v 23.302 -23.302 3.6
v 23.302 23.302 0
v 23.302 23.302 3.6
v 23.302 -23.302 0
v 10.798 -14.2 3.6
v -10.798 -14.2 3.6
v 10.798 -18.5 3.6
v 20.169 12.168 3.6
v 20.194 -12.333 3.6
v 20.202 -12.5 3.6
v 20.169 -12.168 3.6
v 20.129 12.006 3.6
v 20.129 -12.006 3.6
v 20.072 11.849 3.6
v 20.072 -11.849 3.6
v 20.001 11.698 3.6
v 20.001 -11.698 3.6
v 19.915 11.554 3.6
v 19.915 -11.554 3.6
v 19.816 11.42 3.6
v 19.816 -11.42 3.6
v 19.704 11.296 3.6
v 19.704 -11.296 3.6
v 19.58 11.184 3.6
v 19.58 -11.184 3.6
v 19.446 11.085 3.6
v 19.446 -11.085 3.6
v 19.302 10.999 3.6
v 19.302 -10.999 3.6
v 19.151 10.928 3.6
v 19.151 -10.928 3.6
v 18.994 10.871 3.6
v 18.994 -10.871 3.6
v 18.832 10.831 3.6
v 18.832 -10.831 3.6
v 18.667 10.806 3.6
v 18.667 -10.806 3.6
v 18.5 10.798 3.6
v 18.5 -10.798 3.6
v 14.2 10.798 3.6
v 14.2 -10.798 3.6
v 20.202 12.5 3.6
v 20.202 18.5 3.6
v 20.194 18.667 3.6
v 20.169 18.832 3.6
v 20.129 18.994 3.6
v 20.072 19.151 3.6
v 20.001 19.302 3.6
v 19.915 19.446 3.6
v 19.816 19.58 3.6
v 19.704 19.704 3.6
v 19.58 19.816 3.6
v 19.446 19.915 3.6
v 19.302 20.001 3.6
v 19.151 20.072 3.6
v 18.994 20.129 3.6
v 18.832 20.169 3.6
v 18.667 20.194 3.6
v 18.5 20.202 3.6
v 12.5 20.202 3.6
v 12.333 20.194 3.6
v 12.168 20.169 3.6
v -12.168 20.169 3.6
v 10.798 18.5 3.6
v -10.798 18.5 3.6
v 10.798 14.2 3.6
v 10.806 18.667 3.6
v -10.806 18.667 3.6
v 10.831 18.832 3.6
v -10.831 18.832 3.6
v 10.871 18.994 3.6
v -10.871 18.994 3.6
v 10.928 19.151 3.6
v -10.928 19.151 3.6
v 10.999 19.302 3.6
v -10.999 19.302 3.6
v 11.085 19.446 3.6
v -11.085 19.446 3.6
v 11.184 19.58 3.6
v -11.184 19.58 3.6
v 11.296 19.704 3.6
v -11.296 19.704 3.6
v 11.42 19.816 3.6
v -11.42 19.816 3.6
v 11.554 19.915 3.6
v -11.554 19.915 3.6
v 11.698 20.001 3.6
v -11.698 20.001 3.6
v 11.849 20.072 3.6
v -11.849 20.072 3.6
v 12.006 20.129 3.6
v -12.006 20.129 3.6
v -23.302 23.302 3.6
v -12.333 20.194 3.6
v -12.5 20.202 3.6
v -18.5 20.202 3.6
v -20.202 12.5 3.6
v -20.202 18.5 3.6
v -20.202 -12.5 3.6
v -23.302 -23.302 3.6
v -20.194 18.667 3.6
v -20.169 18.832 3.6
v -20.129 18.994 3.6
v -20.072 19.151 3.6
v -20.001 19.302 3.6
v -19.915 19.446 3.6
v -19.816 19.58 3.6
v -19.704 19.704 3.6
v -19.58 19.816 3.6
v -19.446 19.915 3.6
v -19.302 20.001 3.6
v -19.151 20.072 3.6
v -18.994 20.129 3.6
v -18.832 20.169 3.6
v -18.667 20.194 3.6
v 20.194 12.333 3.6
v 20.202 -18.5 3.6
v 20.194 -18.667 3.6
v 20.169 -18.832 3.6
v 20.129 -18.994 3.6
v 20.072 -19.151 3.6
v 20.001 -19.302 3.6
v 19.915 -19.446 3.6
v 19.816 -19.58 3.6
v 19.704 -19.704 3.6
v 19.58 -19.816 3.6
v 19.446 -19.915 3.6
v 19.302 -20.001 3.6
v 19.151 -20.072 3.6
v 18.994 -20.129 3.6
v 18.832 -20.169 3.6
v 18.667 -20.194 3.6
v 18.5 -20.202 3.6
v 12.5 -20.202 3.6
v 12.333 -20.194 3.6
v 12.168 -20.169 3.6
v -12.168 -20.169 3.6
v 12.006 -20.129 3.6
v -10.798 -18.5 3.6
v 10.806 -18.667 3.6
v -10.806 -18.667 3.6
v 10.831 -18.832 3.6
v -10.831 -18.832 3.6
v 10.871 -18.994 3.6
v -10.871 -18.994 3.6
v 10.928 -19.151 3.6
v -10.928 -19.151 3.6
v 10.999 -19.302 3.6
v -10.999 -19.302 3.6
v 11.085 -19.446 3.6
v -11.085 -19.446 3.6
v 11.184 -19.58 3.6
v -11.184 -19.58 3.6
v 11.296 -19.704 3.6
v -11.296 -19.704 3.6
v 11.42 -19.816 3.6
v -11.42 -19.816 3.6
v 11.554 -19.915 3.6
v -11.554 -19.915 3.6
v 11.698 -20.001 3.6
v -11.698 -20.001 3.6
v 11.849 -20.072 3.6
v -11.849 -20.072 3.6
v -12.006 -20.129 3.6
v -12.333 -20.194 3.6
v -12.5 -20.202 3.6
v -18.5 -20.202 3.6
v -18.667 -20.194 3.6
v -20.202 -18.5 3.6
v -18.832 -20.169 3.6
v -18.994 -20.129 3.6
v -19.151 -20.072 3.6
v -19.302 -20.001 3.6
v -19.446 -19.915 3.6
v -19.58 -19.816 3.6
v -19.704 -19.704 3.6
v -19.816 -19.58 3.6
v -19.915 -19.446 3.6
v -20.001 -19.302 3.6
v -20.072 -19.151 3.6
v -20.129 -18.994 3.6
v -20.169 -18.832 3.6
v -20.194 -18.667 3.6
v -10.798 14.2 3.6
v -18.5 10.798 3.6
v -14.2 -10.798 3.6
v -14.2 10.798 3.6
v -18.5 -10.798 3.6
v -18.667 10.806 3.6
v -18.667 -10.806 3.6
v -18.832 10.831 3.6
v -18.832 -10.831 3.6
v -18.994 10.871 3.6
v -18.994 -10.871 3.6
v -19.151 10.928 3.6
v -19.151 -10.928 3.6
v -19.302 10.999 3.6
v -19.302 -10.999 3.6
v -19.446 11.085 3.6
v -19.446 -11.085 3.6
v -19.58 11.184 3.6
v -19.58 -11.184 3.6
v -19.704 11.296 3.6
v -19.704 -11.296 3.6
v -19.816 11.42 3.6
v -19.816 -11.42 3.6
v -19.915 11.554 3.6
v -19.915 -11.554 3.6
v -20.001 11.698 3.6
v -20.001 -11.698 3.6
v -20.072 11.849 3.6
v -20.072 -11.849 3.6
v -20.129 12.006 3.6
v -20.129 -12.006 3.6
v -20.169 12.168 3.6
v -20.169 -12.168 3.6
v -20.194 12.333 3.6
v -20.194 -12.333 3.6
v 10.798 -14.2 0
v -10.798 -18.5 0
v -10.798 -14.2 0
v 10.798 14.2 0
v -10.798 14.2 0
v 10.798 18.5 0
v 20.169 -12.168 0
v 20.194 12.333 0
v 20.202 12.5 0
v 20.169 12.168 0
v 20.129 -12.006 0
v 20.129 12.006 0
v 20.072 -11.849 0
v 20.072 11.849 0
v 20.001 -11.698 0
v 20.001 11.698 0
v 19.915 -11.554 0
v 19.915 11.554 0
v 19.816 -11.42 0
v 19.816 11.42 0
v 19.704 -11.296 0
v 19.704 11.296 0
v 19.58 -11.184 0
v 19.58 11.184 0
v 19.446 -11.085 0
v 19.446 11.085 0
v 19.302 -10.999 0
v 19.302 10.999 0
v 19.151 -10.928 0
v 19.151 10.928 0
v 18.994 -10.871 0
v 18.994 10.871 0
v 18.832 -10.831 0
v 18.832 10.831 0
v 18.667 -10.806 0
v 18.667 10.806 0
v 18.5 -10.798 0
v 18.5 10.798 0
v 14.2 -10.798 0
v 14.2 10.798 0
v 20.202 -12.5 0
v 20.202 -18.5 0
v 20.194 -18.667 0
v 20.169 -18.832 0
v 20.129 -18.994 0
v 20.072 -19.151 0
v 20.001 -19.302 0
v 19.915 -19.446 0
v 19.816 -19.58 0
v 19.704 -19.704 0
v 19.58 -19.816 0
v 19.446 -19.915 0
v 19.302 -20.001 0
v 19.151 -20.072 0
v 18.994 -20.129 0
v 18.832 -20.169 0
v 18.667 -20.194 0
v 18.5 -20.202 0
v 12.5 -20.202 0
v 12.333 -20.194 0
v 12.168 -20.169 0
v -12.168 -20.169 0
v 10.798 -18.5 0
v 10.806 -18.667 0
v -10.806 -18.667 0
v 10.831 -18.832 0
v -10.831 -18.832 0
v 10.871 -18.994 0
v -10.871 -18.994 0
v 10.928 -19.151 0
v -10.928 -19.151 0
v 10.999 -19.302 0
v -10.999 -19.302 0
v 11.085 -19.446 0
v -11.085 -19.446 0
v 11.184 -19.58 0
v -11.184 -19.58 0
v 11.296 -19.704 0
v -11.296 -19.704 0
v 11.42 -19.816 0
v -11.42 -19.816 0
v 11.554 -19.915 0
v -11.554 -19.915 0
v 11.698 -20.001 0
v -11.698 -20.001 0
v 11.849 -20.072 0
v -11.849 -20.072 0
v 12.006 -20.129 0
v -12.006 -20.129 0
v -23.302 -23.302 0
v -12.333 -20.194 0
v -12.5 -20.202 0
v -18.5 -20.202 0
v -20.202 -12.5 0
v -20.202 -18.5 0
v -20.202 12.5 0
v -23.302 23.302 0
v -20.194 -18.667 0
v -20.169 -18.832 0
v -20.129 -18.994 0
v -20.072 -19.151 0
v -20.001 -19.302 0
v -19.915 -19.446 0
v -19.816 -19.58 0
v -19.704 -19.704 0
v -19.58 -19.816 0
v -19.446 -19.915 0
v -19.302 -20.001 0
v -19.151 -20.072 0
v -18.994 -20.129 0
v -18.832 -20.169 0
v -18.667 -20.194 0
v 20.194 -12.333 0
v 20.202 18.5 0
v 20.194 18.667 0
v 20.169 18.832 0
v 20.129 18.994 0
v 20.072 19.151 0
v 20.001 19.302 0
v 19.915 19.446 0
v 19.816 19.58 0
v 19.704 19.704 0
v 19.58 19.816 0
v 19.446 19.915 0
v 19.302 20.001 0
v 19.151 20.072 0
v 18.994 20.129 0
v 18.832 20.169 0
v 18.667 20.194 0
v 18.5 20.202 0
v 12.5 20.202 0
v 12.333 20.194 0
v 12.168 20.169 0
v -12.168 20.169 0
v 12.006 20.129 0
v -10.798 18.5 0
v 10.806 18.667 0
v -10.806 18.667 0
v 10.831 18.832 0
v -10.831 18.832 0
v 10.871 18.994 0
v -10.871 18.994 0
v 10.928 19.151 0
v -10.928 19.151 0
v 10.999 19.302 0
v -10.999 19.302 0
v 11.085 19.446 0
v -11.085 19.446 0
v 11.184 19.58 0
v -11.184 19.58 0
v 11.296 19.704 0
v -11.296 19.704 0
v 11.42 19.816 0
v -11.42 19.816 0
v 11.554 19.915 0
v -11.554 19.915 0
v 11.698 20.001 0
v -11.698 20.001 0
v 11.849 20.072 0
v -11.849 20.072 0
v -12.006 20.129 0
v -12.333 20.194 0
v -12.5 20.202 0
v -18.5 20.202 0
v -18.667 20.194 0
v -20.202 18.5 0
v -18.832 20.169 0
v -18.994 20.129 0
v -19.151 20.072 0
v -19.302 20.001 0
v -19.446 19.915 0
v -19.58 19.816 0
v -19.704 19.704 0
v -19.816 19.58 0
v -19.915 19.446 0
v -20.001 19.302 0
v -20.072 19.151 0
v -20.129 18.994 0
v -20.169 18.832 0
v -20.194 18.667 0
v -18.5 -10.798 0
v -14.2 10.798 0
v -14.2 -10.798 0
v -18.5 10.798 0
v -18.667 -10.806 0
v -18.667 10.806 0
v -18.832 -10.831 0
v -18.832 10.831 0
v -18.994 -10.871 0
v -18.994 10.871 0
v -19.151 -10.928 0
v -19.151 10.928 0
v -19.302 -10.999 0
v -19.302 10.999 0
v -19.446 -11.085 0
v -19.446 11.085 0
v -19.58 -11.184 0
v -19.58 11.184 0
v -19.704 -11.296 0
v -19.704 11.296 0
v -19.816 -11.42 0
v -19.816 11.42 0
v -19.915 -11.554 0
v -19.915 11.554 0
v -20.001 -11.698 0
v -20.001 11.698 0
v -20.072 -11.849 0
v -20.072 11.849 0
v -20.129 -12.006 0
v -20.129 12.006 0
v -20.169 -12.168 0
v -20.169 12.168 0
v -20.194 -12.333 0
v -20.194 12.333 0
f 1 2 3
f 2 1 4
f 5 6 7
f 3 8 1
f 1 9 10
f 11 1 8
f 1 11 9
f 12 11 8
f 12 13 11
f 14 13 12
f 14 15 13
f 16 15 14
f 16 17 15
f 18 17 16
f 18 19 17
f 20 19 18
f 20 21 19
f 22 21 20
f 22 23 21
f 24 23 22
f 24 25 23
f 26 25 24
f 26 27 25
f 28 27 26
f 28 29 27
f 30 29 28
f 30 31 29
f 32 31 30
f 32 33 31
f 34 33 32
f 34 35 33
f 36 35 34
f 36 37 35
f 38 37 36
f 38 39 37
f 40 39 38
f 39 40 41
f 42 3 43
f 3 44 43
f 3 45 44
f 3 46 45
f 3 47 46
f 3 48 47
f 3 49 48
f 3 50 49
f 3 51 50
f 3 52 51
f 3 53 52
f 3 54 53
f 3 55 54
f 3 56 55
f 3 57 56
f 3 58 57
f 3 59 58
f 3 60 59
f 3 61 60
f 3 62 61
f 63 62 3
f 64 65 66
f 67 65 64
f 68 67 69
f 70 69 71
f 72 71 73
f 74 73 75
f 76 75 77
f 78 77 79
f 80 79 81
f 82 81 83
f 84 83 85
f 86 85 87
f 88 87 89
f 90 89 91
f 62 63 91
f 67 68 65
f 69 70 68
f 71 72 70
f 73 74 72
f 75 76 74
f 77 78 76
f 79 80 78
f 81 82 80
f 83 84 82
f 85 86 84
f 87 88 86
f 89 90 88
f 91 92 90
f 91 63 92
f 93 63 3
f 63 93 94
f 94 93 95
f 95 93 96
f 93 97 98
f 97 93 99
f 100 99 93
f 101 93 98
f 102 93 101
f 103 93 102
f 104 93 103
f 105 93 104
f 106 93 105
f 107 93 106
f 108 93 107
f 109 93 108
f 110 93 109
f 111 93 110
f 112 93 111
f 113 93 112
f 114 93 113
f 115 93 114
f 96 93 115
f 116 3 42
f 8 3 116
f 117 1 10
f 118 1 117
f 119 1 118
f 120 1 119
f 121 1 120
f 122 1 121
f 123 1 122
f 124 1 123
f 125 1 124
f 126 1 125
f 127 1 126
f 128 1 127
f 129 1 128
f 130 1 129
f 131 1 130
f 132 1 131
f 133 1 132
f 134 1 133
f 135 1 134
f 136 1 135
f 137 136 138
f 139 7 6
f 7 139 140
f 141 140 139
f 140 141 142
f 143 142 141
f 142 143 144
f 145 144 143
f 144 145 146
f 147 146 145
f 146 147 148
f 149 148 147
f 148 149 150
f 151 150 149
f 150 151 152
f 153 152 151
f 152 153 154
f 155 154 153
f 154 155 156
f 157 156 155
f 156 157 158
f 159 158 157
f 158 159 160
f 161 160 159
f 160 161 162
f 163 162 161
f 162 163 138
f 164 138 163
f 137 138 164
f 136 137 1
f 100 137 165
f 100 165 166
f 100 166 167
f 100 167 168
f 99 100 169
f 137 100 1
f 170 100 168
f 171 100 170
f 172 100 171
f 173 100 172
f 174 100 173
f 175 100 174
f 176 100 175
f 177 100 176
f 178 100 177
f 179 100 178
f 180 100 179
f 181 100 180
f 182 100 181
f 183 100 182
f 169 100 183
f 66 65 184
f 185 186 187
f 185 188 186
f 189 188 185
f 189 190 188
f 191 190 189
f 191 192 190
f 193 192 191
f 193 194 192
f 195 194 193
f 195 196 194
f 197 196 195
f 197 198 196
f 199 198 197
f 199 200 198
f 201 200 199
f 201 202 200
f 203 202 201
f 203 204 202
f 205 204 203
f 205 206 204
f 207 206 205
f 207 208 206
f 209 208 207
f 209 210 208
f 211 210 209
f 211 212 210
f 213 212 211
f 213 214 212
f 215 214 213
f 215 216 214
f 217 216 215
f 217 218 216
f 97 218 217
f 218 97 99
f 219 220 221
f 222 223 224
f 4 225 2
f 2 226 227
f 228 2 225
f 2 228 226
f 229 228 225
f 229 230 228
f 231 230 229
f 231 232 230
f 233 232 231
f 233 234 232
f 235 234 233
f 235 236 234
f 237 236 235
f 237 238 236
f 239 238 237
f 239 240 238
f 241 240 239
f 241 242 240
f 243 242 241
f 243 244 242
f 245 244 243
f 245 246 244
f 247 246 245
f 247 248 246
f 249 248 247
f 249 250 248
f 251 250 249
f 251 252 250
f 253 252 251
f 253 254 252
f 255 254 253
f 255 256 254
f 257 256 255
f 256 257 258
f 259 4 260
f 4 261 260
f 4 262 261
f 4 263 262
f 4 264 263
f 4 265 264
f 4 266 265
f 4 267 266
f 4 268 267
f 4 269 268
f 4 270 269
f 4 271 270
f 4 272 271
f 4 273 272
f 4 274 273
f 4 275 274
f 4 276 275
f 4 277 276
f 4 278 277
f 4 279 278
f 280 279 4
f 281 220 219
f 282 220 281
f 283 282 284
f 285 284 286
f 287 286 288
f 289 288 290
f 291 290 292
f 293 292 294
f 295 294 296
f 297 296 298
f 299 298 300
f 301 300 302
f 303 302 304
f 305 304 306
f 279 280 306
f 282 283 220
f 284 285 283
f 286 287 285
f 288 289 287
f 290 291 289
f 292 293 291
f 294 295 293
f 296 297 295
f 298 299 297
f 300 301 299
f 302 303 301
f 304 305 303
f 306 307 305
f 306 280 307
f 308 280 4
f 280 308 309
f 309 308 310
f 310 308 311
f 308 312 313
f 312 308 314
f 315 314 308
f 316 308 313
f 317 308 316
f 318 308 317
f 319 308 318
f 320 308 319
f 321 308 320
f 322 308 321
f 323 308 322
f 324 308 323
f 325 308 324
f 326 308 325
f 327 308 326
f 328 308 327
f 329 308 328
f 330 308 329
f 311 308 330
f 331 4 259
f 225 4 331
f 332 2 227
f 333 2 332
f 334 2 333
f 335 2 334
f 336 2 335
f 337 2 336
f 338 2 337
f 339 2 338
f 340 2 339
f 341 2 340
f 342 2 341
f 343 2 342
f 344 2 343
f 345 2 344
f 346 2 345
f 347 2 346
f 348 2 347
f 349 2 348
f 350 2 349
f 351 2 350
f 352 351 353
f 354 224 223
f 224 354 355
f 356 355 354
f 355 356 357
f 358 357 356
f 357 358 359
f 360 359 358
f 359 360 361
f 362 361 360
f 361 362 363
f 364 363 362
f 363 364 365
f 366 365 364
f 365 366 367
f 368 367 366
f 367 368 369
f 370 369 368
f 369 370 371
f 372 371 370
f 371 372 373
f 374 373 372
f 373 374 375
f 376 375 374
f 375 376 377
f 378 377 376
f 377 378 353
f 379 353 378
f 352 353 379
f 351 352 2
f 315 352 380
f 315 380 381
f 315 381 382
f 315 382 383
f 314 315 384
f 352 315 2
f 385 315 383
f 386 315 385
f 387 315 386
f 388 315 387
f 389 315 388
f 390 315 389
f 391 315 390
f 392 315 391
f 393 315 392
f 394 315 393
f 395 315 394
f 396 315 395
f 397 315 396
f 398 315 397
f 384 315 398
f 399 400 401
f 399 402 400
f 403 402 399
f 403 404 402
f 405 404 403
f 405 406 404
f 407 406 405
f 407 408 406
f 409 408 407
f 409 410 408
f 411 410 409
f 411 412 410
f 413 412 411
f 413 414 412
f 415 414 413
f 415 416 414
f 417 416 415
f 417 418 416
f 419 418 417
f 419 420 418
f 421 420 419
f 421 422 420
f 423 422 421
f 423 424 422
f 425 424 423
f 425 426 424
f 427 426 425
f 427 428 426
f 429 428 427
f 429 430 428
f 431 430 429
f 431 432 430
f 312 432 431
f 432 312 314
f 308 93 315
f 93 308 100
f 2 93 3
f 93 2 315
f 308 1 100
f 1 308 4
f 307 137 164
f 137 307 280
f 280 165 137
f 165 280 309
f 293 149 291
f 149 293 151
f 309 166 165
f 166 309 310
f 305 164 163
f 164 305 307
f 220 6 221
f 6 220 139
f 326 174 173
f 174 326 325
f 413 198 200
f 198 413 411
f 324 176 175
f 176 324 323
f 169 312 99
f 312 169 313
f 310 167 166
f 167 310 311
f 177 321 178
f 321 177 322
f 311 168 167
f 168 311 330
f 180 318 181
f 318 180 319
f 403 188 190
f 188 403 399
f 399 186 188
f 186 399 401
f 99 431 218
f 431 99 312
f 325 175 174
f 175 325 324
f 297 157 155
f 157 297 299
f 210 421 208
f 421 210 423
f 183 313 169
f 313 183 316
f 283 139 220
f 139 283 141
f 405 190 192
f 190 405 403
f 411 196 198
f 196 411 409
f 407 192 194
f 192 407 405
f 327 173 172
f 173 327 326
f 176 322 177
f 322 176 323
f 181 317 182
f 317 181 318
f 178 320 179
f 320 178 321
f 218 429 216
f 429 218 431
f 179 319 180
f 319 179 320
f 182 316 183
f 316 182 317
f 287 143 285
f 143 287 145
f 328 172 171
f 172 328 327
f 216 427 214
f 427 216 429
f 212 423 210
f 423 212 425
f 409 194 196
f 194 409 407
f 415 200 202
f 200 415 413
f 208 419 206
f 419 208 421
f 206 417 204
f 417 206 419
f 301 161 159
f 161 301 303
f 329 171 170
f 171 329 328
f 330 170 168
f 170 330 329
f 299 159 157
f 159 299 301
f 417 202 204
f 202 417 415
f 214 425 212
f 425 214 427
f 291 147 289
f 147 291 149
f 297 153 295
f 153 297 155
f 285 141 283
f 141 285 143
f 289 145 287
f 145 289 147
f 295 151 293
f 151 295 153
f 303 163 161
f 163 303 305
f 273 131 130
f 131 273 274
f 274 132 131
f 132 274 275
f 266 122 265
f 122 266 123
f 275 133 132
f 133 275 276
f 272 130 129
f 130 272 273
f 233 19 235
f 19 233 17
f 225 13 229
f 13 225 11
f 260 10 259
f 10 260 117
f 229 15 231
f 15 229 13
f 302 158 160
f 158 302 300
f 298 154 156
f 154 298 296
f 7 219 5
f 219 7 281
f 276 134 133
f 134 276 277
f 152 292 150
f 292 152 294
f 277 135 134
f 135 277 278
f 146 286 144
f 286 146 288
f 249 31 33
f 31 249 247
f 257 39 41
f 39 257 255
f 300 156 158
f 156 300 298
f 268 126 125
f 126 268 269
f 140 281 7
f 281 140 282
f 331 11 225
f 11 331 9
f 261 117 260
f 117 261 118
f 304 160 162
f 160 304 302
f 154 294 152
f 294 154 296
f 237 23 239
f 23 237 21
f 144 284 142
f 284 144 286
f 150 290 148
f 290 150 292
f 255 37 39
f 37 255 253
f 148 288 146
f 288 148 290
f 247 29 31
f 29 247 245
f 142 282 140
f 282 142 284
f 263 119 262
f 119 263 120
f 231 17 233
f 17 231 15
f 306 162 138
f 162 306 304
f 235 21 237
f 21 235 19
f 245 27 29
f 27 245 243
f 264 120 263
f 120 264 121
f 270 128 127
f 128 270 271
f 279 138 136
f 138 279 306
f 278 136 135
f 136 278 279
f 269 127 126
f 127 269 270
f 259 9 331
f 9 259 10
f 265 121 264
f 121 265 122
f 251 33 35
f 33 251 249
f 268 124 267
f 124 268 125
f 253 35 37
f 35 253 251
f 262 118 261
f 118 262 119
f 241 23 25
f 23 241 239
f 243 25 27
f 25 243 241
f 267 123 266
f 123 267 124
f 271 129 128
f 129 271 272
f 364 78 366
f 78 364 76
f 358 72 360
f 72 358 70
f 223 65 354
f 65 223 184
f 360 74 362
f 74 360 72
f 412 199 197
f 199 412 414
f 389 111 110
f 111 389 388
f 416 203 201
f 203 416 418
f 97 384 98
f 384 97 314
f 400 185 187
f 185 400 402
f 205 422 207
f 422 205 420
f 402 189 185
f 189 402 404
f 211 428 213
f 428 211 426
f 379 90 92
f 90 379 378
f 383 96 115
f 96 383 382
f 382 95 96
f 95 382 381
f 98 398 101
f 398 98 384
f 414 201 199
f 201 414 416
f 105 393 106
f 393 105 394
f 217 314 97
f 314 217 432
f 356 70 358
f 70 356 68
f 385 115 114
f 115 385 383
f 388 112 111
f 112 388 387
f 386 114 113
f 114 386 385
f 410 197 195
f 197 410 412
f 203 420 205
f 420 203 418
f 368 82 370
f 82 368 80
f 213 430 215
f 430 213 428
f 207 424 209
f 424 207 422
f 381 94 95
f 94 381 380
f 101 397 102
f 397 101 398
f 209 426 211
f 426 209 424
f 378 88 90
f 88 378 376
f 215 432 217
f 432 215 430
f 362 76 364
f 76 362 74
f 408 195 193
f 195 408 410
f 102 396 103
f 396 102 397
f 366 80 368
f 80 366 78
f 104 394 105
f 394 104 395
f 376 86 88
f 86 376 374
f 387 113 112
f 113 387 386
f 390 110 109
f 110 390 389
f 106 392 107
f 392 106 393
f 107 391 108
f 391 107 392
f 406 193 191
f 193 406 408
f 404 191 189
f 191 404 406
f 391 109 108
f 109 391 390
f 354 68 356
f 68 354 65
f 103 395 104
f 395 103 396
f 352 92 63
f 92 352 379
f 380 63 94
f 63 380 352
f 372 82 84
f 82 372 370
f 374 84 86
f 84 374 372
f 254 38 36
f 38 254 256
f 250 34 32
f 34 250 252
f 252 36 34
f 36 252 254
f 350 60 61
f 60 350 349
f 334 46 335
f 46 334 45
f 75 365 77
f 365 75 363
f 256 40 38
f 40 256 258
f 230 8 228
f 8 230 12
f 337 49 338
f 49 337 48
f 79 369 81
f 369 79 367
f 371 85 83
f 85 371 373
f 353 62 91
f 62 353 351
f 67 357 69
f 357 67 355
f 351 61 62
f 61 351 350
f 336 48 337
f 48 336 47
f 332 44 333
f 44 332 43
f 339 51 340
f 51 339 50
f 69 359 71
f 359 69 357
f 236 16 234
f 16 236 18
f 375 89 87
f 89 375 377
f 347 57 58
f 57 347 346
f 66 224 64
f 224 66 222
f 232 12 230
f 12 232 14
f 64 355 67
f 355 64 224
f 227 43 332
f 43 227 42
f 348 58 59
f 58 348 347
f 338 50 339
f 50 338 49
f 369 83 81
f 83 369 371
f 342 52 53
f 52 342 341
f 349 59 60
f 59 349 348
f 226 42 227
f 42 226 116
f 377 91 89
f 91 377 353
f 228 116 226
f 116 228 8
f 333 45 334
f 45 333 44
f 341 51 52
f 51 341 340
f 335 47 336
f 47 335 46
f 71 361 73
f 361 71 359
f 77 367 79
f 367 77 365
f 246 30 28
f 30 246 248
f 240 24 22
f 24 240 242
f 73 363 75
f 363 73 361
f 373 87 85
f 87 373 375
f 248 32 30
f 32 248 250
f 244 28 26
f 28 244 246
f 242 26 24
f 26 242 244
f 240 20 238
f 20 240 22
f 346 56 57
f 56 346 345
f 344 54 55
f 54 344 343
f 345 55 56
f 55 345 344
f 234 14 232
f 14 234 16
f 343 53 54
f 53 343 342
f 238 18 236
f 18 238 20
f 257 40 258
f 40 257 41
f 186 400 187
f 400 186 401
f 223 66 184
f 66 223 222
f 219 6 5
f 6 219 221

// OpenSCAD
// body plate
difference() {
  union() {
    // body plate (plate)
    multmatrix([[1, 0, 0, 0], [0, 1, 0, 0], [0, 0, 1, 0], [0, 0, 0, 1]]) translate([-23.30205, -23.30205, 0]) cube([46.6041, 46.6041, 3.6]);
  }
  // cut slot_0 (bolt_slot)
  multmatrix([[1, 0, 0, -15.5], [0, 1, 0, -15.5], [0, 0, 1, -1], [0, 0, 0, 1]]) linear_extrude(height=5.6) polygon(points=[[3, -4.70205], [3.16683, -4.693854], [3.332054, -4.669346], [3.494079, -4.62876], [3.651346, -4.572489], [3.802341, -4.501074], [3.945608, -4.415203], [4.079769, -4.315703], [4.203531, -4.203531], [4.315703, -4.079769], [4.415203, -3.945608], [4.501074, -3.802341], [4.572489, -3.651346], [4.62876, -3.494079], [4.669346, -3.332054], [4.693854, -3.16683], [4.70205, -3], [4.70205, 3], [4.693854, 3.16683], [4.669346, 3.332054], [4.62876, 3.494079], [4.572489, 3.651346], [4.501074, 3.802341], [4.415203, 3.945608], [4.315703, 4.079769], [4.203531, 4.203531], [4.079769, 4.315703], [3.945608, 4.415203], [3.802341, 4.501074], [3.651346, 4.572489], [3.494079, 4.62876], [3.332054, 4.669346], [3.16683, 4.693854], [3, 4.70205], [-3, 4.70205], [-3.16683, 4.693854], [-3.332054, 4.669346], [-3.494079, 4.62876], [-3.651346, 4.572489], [-3.802341, 4.501074], [-3.945608, 4.415203], [-4.079769, 4.315703], [-4.203531, 4.203531], [-4.315703, 4.079769], [-4.415203, 3.945608], [-4.501074, 3.802341], [-4.572489, 3.651346], [-4.62876, 3.494079], [-4.669346, 3.332054], [-4.693854, 3.16683], [-4.70205, 3], [-4.70205, -3], [-4.693854, -3.16683], [-4.669346, -3.332054], [-4.62876, -3.494079], [-4.572489, -3.651346], [-4.501074, -3.802341], [-4.415203, -3.945608], [-4.315703, -4.079769], [-4.203531, -4.203531], [-4.079769, -4.315703], [-3.945608, -4.415203], [-3.802341, -4.501074], [-3.651346, -4.572489], [-3.494079, -4.62876], [-3.332054, -4.669346], [-3.16683, -4.693854], [-3, -4.70205]]);
  // cut slot_1 (bolt_slot)
  multmatrix([[1, 0, 0, 15.5], [0, 1, 0, -15.5], [0, 0, 1, -1], [0, 0, 0, 1]]) linear_extrude(height=5.6) polygon(points=[[3, -4.70205], [3.16683, -4.693854], [3.332054, -4.669346], [3.494079, -4.62876], [3.651346, -4.572489], [3.802341, -4.501074], [3.945608, -4.415203], [4.079769, -4.315703], [4.203531, -4.203531], [4.315703, -4.079769], [4.415203, -3.945608], [4.501074, -3.802341], [4.572489, -3.651346], [4.62876, -3.494079], [4.669346, -3.332054], [4.693854, -3.16683], [4.70205, -3], [4.70205, 3], [4.693854, 3.16683], [4.669346, 3.332054], [4.62876, 3.494079], [4.572489, 3.651346], [4.501074, 3.802341], [4.415203, 3.945608], [4.315703, 4.079769], [4.203531, 4.203531], [4.079769, 4.315703], [3.945608, 4.415203], [3.802341, 4.501074], [3.651346, 4.572489], [3.494079, 4.62876], [3.332054, 4.669346], [3.16683, 4.693854], [3, 4.70205], [-3, 4.70205], [-3.16683, 4.693854], [-3.332054, 4.669346], [-3.494079, 4.62876], [-3.651346, 4.572489], [-3.802341, 4.501074], [-3.945608, 4.415203], [-4.079769, 4.315703], [-4.203531, 4.203531], [-4.315703, 4.079769], [-4.415203, 3.945608], [-4.501074, 3.802341], [-4.572489, 3.651346], [-4.62876, 3.494079], [-4.669346, 3.332054], [-4.693854, 3.16683], [-4.70205, 3], [-4.70205, -3], [-4.693854, -3.16683], [-4.669346, -3.332054], [-4.62876, -3.494079], [-4.572489, -3.651346], [-4.501074, -3.802341], [-4.415203, -3.945608], [-4.315703, -4.079769], [-4.203531, -4.203531], [-4.079769, -4.315703], [-3.945608, -4.415203], [-3.802341, -4.501074], [-3.651346, -4.572489], [-3.494079, -4.62876], [-3.332054, -4.669346], [-3.16683, -4.693854], [-3, -4.70205]]);
  // cut slot_2 (bolt_slot)
  multmatrix([[1, 0, 0, -15.5], [0, 1, 0, 15.5], [0, 0, 1, -1], [0, 0, 0, 1]]) linear_extrude(height=5.6) polygon(points=[[3, -4.70205], [3.16683, -4.693854], [3.332054, -4.669346], [3.494079, -4.62876], [3.651346, -4.572489], [3.802341, -4.501074], [3.945608, -4.415203], [4.079769, -4.315703], [4.203531, -4.203531], [4.315703, -4.079769], [4.415203, -3.945608], [4.501074, -3.802341], [4.572489, -3.651346], [4.62876, -3.494079], [4.669346, -3.332054], [4.693854, -3.16683], [4.70205, -3], [4.70205, 3], [4.693854, 3.16683], [4.669346, 3.332054], [4.62876, 3.494079], [4.572489, 3.651346], [4.501074, 3.802341], [4.415203, 3.945608], [4.315703, 4.079769], [4.203531, 4.203531], [4.079769, 4.315703], [3.945608, 4.415203], [3.802341, 4.501074], [3.651346, 4.572489], [3.494079, 4.62876], [3.332054, 4.669346], [3.16683, 4.693854], [3, 4.70205], [-3, 4.70205], [-3.16683, 4.693854], [-3.332054, 4.669346], [-3.494079, 4.62876], [-3.651346, 4.572489], [-3.802341, 4.501074], [-3.945608, 4.415203], [-4.079769, 4.315703], [-4.203531, 4.203531], [-4.315703, 4.079769], [-4.415203, 3.945608], [-4.501074, 3.802341], [-4.572489, 3.651346], [-4.62876, 3.494079], [-4.669346, 3.332054], [-4.693854, 3.16683], [-4.70205, 3], [-4.70205, -3], [-4.693854, -3.16683], [-4.669346, -3.332054], [-4.62876, -3.494079], [-4.572489, -3.651346], [-4.501074, -3.802341], [-4.415203, -3.945608], [-4.315703, -4.079769], [-4.203531, -4.203531], [-4.079769, -4.315703], [-3.945608, -4.415203], [-3.802341, -4.501074], [-3.651346, -4.572489], [-3.494079, -4.62876], [-3.332054, -4.669346], [-3.16683, -4.693854], [-3, -4.70205]]);
  // cut slot_3 (bolt_slot)
  multmatrix([[1, 0, 0, 15.5], [0, 1, 0, 15.5], [0, 0, 1, -1], [0, 0, 0, 1]]) linear_extrude(height=5.6) polygon(points=[[3, -4.70205], [3.16683, -4.693854], [3.332054, -4.669346], [3.494079, -4.62876], [3.651346, -4.572489], [3.802341, -4.501074], [3.945608, -4.415203], [4.079769, -4.315703], [4.203531, -4.203531], [4.315703, -4.079769], [4.415203, -3.945608], [4.501074, -3.802341], [4.572489, -3.651346], [4.62876, -3.494079], [4.669346, -3.332054], [4.693854, -3.16683], [4.70205, -3], [4.70205, 3], [4.693854, 3.16683], [4.669346, 3.332054], [4.62876, 3.494079], [4.572489, 3.651346], [4.501074, 3.802341], [4.415203, 3.945608], [4.315703, 4.079769], [4.203531, 4.203531], [4.079769, 4.315703], [3.945608, 4.415203], [3.802341, 4.501074], [3.651346, 4.572489], [3.494079, 4.62876], [3.332054, 4.669346], [3.16683, 4.693854], [3, 4.70205], [-3, 4.70205], [-3.16683, 4.693854], [-3.332054, 4.669346], [-3.494079, 4.62876], [-3.651346, 4.572489], [-3.802341, 4.501074], [-3.945608, 4.415203], [-4.079769, 4.315703], [-4.203531, 4.203531], [-4.315703, 4.079769], [-4.415203, 3.945608], [-4.501074, 3.802341], [-4.572489, 3.651346], [-4.62876, 3.494079], [-4.669346, 3.332054], [-4.693854, 3.16683], [-4.70205, 3], [-4.70205, -3], [-4.693854, -3.16683], [-4.669346, -3.332054], [-4.62876, -3.494079], [-4.572489, -3.651346], [-4.501074, -3.802341], [-4.415203, -3.945608], [-4.315703, -4.079769], [-4.203531, -4.203531], [-4.079769, -4.315703], [-3.945608, -4.415203], [-3.802341, -4.501074], [-3.651346, -4.572489], [-3.494079, -4.62876], [-3.332054, -4.669346], [-3.16683, -4.693854], [-3, -4.70205]]);
  // cut clear_pilot (recess)
  multmatrix([[1, 0, 0, 0], [0, 1, 0, 0], [0, 0, 1, -1], [0, 0, 0, 1]]) translate([-14.2, -14.2, 0]) cube([28.4, 28.4, 5.6]);
  // cut clear_shaft (recess)
  multmatrix([[1, 0, 0, 0], [0, 1, 0, 0], [0, 0, 1, -1], [0, 0, 0, 1]]) translate([-5.7, -5.7, 0]) cube([11.4, 11.4, 5.6]);
}
